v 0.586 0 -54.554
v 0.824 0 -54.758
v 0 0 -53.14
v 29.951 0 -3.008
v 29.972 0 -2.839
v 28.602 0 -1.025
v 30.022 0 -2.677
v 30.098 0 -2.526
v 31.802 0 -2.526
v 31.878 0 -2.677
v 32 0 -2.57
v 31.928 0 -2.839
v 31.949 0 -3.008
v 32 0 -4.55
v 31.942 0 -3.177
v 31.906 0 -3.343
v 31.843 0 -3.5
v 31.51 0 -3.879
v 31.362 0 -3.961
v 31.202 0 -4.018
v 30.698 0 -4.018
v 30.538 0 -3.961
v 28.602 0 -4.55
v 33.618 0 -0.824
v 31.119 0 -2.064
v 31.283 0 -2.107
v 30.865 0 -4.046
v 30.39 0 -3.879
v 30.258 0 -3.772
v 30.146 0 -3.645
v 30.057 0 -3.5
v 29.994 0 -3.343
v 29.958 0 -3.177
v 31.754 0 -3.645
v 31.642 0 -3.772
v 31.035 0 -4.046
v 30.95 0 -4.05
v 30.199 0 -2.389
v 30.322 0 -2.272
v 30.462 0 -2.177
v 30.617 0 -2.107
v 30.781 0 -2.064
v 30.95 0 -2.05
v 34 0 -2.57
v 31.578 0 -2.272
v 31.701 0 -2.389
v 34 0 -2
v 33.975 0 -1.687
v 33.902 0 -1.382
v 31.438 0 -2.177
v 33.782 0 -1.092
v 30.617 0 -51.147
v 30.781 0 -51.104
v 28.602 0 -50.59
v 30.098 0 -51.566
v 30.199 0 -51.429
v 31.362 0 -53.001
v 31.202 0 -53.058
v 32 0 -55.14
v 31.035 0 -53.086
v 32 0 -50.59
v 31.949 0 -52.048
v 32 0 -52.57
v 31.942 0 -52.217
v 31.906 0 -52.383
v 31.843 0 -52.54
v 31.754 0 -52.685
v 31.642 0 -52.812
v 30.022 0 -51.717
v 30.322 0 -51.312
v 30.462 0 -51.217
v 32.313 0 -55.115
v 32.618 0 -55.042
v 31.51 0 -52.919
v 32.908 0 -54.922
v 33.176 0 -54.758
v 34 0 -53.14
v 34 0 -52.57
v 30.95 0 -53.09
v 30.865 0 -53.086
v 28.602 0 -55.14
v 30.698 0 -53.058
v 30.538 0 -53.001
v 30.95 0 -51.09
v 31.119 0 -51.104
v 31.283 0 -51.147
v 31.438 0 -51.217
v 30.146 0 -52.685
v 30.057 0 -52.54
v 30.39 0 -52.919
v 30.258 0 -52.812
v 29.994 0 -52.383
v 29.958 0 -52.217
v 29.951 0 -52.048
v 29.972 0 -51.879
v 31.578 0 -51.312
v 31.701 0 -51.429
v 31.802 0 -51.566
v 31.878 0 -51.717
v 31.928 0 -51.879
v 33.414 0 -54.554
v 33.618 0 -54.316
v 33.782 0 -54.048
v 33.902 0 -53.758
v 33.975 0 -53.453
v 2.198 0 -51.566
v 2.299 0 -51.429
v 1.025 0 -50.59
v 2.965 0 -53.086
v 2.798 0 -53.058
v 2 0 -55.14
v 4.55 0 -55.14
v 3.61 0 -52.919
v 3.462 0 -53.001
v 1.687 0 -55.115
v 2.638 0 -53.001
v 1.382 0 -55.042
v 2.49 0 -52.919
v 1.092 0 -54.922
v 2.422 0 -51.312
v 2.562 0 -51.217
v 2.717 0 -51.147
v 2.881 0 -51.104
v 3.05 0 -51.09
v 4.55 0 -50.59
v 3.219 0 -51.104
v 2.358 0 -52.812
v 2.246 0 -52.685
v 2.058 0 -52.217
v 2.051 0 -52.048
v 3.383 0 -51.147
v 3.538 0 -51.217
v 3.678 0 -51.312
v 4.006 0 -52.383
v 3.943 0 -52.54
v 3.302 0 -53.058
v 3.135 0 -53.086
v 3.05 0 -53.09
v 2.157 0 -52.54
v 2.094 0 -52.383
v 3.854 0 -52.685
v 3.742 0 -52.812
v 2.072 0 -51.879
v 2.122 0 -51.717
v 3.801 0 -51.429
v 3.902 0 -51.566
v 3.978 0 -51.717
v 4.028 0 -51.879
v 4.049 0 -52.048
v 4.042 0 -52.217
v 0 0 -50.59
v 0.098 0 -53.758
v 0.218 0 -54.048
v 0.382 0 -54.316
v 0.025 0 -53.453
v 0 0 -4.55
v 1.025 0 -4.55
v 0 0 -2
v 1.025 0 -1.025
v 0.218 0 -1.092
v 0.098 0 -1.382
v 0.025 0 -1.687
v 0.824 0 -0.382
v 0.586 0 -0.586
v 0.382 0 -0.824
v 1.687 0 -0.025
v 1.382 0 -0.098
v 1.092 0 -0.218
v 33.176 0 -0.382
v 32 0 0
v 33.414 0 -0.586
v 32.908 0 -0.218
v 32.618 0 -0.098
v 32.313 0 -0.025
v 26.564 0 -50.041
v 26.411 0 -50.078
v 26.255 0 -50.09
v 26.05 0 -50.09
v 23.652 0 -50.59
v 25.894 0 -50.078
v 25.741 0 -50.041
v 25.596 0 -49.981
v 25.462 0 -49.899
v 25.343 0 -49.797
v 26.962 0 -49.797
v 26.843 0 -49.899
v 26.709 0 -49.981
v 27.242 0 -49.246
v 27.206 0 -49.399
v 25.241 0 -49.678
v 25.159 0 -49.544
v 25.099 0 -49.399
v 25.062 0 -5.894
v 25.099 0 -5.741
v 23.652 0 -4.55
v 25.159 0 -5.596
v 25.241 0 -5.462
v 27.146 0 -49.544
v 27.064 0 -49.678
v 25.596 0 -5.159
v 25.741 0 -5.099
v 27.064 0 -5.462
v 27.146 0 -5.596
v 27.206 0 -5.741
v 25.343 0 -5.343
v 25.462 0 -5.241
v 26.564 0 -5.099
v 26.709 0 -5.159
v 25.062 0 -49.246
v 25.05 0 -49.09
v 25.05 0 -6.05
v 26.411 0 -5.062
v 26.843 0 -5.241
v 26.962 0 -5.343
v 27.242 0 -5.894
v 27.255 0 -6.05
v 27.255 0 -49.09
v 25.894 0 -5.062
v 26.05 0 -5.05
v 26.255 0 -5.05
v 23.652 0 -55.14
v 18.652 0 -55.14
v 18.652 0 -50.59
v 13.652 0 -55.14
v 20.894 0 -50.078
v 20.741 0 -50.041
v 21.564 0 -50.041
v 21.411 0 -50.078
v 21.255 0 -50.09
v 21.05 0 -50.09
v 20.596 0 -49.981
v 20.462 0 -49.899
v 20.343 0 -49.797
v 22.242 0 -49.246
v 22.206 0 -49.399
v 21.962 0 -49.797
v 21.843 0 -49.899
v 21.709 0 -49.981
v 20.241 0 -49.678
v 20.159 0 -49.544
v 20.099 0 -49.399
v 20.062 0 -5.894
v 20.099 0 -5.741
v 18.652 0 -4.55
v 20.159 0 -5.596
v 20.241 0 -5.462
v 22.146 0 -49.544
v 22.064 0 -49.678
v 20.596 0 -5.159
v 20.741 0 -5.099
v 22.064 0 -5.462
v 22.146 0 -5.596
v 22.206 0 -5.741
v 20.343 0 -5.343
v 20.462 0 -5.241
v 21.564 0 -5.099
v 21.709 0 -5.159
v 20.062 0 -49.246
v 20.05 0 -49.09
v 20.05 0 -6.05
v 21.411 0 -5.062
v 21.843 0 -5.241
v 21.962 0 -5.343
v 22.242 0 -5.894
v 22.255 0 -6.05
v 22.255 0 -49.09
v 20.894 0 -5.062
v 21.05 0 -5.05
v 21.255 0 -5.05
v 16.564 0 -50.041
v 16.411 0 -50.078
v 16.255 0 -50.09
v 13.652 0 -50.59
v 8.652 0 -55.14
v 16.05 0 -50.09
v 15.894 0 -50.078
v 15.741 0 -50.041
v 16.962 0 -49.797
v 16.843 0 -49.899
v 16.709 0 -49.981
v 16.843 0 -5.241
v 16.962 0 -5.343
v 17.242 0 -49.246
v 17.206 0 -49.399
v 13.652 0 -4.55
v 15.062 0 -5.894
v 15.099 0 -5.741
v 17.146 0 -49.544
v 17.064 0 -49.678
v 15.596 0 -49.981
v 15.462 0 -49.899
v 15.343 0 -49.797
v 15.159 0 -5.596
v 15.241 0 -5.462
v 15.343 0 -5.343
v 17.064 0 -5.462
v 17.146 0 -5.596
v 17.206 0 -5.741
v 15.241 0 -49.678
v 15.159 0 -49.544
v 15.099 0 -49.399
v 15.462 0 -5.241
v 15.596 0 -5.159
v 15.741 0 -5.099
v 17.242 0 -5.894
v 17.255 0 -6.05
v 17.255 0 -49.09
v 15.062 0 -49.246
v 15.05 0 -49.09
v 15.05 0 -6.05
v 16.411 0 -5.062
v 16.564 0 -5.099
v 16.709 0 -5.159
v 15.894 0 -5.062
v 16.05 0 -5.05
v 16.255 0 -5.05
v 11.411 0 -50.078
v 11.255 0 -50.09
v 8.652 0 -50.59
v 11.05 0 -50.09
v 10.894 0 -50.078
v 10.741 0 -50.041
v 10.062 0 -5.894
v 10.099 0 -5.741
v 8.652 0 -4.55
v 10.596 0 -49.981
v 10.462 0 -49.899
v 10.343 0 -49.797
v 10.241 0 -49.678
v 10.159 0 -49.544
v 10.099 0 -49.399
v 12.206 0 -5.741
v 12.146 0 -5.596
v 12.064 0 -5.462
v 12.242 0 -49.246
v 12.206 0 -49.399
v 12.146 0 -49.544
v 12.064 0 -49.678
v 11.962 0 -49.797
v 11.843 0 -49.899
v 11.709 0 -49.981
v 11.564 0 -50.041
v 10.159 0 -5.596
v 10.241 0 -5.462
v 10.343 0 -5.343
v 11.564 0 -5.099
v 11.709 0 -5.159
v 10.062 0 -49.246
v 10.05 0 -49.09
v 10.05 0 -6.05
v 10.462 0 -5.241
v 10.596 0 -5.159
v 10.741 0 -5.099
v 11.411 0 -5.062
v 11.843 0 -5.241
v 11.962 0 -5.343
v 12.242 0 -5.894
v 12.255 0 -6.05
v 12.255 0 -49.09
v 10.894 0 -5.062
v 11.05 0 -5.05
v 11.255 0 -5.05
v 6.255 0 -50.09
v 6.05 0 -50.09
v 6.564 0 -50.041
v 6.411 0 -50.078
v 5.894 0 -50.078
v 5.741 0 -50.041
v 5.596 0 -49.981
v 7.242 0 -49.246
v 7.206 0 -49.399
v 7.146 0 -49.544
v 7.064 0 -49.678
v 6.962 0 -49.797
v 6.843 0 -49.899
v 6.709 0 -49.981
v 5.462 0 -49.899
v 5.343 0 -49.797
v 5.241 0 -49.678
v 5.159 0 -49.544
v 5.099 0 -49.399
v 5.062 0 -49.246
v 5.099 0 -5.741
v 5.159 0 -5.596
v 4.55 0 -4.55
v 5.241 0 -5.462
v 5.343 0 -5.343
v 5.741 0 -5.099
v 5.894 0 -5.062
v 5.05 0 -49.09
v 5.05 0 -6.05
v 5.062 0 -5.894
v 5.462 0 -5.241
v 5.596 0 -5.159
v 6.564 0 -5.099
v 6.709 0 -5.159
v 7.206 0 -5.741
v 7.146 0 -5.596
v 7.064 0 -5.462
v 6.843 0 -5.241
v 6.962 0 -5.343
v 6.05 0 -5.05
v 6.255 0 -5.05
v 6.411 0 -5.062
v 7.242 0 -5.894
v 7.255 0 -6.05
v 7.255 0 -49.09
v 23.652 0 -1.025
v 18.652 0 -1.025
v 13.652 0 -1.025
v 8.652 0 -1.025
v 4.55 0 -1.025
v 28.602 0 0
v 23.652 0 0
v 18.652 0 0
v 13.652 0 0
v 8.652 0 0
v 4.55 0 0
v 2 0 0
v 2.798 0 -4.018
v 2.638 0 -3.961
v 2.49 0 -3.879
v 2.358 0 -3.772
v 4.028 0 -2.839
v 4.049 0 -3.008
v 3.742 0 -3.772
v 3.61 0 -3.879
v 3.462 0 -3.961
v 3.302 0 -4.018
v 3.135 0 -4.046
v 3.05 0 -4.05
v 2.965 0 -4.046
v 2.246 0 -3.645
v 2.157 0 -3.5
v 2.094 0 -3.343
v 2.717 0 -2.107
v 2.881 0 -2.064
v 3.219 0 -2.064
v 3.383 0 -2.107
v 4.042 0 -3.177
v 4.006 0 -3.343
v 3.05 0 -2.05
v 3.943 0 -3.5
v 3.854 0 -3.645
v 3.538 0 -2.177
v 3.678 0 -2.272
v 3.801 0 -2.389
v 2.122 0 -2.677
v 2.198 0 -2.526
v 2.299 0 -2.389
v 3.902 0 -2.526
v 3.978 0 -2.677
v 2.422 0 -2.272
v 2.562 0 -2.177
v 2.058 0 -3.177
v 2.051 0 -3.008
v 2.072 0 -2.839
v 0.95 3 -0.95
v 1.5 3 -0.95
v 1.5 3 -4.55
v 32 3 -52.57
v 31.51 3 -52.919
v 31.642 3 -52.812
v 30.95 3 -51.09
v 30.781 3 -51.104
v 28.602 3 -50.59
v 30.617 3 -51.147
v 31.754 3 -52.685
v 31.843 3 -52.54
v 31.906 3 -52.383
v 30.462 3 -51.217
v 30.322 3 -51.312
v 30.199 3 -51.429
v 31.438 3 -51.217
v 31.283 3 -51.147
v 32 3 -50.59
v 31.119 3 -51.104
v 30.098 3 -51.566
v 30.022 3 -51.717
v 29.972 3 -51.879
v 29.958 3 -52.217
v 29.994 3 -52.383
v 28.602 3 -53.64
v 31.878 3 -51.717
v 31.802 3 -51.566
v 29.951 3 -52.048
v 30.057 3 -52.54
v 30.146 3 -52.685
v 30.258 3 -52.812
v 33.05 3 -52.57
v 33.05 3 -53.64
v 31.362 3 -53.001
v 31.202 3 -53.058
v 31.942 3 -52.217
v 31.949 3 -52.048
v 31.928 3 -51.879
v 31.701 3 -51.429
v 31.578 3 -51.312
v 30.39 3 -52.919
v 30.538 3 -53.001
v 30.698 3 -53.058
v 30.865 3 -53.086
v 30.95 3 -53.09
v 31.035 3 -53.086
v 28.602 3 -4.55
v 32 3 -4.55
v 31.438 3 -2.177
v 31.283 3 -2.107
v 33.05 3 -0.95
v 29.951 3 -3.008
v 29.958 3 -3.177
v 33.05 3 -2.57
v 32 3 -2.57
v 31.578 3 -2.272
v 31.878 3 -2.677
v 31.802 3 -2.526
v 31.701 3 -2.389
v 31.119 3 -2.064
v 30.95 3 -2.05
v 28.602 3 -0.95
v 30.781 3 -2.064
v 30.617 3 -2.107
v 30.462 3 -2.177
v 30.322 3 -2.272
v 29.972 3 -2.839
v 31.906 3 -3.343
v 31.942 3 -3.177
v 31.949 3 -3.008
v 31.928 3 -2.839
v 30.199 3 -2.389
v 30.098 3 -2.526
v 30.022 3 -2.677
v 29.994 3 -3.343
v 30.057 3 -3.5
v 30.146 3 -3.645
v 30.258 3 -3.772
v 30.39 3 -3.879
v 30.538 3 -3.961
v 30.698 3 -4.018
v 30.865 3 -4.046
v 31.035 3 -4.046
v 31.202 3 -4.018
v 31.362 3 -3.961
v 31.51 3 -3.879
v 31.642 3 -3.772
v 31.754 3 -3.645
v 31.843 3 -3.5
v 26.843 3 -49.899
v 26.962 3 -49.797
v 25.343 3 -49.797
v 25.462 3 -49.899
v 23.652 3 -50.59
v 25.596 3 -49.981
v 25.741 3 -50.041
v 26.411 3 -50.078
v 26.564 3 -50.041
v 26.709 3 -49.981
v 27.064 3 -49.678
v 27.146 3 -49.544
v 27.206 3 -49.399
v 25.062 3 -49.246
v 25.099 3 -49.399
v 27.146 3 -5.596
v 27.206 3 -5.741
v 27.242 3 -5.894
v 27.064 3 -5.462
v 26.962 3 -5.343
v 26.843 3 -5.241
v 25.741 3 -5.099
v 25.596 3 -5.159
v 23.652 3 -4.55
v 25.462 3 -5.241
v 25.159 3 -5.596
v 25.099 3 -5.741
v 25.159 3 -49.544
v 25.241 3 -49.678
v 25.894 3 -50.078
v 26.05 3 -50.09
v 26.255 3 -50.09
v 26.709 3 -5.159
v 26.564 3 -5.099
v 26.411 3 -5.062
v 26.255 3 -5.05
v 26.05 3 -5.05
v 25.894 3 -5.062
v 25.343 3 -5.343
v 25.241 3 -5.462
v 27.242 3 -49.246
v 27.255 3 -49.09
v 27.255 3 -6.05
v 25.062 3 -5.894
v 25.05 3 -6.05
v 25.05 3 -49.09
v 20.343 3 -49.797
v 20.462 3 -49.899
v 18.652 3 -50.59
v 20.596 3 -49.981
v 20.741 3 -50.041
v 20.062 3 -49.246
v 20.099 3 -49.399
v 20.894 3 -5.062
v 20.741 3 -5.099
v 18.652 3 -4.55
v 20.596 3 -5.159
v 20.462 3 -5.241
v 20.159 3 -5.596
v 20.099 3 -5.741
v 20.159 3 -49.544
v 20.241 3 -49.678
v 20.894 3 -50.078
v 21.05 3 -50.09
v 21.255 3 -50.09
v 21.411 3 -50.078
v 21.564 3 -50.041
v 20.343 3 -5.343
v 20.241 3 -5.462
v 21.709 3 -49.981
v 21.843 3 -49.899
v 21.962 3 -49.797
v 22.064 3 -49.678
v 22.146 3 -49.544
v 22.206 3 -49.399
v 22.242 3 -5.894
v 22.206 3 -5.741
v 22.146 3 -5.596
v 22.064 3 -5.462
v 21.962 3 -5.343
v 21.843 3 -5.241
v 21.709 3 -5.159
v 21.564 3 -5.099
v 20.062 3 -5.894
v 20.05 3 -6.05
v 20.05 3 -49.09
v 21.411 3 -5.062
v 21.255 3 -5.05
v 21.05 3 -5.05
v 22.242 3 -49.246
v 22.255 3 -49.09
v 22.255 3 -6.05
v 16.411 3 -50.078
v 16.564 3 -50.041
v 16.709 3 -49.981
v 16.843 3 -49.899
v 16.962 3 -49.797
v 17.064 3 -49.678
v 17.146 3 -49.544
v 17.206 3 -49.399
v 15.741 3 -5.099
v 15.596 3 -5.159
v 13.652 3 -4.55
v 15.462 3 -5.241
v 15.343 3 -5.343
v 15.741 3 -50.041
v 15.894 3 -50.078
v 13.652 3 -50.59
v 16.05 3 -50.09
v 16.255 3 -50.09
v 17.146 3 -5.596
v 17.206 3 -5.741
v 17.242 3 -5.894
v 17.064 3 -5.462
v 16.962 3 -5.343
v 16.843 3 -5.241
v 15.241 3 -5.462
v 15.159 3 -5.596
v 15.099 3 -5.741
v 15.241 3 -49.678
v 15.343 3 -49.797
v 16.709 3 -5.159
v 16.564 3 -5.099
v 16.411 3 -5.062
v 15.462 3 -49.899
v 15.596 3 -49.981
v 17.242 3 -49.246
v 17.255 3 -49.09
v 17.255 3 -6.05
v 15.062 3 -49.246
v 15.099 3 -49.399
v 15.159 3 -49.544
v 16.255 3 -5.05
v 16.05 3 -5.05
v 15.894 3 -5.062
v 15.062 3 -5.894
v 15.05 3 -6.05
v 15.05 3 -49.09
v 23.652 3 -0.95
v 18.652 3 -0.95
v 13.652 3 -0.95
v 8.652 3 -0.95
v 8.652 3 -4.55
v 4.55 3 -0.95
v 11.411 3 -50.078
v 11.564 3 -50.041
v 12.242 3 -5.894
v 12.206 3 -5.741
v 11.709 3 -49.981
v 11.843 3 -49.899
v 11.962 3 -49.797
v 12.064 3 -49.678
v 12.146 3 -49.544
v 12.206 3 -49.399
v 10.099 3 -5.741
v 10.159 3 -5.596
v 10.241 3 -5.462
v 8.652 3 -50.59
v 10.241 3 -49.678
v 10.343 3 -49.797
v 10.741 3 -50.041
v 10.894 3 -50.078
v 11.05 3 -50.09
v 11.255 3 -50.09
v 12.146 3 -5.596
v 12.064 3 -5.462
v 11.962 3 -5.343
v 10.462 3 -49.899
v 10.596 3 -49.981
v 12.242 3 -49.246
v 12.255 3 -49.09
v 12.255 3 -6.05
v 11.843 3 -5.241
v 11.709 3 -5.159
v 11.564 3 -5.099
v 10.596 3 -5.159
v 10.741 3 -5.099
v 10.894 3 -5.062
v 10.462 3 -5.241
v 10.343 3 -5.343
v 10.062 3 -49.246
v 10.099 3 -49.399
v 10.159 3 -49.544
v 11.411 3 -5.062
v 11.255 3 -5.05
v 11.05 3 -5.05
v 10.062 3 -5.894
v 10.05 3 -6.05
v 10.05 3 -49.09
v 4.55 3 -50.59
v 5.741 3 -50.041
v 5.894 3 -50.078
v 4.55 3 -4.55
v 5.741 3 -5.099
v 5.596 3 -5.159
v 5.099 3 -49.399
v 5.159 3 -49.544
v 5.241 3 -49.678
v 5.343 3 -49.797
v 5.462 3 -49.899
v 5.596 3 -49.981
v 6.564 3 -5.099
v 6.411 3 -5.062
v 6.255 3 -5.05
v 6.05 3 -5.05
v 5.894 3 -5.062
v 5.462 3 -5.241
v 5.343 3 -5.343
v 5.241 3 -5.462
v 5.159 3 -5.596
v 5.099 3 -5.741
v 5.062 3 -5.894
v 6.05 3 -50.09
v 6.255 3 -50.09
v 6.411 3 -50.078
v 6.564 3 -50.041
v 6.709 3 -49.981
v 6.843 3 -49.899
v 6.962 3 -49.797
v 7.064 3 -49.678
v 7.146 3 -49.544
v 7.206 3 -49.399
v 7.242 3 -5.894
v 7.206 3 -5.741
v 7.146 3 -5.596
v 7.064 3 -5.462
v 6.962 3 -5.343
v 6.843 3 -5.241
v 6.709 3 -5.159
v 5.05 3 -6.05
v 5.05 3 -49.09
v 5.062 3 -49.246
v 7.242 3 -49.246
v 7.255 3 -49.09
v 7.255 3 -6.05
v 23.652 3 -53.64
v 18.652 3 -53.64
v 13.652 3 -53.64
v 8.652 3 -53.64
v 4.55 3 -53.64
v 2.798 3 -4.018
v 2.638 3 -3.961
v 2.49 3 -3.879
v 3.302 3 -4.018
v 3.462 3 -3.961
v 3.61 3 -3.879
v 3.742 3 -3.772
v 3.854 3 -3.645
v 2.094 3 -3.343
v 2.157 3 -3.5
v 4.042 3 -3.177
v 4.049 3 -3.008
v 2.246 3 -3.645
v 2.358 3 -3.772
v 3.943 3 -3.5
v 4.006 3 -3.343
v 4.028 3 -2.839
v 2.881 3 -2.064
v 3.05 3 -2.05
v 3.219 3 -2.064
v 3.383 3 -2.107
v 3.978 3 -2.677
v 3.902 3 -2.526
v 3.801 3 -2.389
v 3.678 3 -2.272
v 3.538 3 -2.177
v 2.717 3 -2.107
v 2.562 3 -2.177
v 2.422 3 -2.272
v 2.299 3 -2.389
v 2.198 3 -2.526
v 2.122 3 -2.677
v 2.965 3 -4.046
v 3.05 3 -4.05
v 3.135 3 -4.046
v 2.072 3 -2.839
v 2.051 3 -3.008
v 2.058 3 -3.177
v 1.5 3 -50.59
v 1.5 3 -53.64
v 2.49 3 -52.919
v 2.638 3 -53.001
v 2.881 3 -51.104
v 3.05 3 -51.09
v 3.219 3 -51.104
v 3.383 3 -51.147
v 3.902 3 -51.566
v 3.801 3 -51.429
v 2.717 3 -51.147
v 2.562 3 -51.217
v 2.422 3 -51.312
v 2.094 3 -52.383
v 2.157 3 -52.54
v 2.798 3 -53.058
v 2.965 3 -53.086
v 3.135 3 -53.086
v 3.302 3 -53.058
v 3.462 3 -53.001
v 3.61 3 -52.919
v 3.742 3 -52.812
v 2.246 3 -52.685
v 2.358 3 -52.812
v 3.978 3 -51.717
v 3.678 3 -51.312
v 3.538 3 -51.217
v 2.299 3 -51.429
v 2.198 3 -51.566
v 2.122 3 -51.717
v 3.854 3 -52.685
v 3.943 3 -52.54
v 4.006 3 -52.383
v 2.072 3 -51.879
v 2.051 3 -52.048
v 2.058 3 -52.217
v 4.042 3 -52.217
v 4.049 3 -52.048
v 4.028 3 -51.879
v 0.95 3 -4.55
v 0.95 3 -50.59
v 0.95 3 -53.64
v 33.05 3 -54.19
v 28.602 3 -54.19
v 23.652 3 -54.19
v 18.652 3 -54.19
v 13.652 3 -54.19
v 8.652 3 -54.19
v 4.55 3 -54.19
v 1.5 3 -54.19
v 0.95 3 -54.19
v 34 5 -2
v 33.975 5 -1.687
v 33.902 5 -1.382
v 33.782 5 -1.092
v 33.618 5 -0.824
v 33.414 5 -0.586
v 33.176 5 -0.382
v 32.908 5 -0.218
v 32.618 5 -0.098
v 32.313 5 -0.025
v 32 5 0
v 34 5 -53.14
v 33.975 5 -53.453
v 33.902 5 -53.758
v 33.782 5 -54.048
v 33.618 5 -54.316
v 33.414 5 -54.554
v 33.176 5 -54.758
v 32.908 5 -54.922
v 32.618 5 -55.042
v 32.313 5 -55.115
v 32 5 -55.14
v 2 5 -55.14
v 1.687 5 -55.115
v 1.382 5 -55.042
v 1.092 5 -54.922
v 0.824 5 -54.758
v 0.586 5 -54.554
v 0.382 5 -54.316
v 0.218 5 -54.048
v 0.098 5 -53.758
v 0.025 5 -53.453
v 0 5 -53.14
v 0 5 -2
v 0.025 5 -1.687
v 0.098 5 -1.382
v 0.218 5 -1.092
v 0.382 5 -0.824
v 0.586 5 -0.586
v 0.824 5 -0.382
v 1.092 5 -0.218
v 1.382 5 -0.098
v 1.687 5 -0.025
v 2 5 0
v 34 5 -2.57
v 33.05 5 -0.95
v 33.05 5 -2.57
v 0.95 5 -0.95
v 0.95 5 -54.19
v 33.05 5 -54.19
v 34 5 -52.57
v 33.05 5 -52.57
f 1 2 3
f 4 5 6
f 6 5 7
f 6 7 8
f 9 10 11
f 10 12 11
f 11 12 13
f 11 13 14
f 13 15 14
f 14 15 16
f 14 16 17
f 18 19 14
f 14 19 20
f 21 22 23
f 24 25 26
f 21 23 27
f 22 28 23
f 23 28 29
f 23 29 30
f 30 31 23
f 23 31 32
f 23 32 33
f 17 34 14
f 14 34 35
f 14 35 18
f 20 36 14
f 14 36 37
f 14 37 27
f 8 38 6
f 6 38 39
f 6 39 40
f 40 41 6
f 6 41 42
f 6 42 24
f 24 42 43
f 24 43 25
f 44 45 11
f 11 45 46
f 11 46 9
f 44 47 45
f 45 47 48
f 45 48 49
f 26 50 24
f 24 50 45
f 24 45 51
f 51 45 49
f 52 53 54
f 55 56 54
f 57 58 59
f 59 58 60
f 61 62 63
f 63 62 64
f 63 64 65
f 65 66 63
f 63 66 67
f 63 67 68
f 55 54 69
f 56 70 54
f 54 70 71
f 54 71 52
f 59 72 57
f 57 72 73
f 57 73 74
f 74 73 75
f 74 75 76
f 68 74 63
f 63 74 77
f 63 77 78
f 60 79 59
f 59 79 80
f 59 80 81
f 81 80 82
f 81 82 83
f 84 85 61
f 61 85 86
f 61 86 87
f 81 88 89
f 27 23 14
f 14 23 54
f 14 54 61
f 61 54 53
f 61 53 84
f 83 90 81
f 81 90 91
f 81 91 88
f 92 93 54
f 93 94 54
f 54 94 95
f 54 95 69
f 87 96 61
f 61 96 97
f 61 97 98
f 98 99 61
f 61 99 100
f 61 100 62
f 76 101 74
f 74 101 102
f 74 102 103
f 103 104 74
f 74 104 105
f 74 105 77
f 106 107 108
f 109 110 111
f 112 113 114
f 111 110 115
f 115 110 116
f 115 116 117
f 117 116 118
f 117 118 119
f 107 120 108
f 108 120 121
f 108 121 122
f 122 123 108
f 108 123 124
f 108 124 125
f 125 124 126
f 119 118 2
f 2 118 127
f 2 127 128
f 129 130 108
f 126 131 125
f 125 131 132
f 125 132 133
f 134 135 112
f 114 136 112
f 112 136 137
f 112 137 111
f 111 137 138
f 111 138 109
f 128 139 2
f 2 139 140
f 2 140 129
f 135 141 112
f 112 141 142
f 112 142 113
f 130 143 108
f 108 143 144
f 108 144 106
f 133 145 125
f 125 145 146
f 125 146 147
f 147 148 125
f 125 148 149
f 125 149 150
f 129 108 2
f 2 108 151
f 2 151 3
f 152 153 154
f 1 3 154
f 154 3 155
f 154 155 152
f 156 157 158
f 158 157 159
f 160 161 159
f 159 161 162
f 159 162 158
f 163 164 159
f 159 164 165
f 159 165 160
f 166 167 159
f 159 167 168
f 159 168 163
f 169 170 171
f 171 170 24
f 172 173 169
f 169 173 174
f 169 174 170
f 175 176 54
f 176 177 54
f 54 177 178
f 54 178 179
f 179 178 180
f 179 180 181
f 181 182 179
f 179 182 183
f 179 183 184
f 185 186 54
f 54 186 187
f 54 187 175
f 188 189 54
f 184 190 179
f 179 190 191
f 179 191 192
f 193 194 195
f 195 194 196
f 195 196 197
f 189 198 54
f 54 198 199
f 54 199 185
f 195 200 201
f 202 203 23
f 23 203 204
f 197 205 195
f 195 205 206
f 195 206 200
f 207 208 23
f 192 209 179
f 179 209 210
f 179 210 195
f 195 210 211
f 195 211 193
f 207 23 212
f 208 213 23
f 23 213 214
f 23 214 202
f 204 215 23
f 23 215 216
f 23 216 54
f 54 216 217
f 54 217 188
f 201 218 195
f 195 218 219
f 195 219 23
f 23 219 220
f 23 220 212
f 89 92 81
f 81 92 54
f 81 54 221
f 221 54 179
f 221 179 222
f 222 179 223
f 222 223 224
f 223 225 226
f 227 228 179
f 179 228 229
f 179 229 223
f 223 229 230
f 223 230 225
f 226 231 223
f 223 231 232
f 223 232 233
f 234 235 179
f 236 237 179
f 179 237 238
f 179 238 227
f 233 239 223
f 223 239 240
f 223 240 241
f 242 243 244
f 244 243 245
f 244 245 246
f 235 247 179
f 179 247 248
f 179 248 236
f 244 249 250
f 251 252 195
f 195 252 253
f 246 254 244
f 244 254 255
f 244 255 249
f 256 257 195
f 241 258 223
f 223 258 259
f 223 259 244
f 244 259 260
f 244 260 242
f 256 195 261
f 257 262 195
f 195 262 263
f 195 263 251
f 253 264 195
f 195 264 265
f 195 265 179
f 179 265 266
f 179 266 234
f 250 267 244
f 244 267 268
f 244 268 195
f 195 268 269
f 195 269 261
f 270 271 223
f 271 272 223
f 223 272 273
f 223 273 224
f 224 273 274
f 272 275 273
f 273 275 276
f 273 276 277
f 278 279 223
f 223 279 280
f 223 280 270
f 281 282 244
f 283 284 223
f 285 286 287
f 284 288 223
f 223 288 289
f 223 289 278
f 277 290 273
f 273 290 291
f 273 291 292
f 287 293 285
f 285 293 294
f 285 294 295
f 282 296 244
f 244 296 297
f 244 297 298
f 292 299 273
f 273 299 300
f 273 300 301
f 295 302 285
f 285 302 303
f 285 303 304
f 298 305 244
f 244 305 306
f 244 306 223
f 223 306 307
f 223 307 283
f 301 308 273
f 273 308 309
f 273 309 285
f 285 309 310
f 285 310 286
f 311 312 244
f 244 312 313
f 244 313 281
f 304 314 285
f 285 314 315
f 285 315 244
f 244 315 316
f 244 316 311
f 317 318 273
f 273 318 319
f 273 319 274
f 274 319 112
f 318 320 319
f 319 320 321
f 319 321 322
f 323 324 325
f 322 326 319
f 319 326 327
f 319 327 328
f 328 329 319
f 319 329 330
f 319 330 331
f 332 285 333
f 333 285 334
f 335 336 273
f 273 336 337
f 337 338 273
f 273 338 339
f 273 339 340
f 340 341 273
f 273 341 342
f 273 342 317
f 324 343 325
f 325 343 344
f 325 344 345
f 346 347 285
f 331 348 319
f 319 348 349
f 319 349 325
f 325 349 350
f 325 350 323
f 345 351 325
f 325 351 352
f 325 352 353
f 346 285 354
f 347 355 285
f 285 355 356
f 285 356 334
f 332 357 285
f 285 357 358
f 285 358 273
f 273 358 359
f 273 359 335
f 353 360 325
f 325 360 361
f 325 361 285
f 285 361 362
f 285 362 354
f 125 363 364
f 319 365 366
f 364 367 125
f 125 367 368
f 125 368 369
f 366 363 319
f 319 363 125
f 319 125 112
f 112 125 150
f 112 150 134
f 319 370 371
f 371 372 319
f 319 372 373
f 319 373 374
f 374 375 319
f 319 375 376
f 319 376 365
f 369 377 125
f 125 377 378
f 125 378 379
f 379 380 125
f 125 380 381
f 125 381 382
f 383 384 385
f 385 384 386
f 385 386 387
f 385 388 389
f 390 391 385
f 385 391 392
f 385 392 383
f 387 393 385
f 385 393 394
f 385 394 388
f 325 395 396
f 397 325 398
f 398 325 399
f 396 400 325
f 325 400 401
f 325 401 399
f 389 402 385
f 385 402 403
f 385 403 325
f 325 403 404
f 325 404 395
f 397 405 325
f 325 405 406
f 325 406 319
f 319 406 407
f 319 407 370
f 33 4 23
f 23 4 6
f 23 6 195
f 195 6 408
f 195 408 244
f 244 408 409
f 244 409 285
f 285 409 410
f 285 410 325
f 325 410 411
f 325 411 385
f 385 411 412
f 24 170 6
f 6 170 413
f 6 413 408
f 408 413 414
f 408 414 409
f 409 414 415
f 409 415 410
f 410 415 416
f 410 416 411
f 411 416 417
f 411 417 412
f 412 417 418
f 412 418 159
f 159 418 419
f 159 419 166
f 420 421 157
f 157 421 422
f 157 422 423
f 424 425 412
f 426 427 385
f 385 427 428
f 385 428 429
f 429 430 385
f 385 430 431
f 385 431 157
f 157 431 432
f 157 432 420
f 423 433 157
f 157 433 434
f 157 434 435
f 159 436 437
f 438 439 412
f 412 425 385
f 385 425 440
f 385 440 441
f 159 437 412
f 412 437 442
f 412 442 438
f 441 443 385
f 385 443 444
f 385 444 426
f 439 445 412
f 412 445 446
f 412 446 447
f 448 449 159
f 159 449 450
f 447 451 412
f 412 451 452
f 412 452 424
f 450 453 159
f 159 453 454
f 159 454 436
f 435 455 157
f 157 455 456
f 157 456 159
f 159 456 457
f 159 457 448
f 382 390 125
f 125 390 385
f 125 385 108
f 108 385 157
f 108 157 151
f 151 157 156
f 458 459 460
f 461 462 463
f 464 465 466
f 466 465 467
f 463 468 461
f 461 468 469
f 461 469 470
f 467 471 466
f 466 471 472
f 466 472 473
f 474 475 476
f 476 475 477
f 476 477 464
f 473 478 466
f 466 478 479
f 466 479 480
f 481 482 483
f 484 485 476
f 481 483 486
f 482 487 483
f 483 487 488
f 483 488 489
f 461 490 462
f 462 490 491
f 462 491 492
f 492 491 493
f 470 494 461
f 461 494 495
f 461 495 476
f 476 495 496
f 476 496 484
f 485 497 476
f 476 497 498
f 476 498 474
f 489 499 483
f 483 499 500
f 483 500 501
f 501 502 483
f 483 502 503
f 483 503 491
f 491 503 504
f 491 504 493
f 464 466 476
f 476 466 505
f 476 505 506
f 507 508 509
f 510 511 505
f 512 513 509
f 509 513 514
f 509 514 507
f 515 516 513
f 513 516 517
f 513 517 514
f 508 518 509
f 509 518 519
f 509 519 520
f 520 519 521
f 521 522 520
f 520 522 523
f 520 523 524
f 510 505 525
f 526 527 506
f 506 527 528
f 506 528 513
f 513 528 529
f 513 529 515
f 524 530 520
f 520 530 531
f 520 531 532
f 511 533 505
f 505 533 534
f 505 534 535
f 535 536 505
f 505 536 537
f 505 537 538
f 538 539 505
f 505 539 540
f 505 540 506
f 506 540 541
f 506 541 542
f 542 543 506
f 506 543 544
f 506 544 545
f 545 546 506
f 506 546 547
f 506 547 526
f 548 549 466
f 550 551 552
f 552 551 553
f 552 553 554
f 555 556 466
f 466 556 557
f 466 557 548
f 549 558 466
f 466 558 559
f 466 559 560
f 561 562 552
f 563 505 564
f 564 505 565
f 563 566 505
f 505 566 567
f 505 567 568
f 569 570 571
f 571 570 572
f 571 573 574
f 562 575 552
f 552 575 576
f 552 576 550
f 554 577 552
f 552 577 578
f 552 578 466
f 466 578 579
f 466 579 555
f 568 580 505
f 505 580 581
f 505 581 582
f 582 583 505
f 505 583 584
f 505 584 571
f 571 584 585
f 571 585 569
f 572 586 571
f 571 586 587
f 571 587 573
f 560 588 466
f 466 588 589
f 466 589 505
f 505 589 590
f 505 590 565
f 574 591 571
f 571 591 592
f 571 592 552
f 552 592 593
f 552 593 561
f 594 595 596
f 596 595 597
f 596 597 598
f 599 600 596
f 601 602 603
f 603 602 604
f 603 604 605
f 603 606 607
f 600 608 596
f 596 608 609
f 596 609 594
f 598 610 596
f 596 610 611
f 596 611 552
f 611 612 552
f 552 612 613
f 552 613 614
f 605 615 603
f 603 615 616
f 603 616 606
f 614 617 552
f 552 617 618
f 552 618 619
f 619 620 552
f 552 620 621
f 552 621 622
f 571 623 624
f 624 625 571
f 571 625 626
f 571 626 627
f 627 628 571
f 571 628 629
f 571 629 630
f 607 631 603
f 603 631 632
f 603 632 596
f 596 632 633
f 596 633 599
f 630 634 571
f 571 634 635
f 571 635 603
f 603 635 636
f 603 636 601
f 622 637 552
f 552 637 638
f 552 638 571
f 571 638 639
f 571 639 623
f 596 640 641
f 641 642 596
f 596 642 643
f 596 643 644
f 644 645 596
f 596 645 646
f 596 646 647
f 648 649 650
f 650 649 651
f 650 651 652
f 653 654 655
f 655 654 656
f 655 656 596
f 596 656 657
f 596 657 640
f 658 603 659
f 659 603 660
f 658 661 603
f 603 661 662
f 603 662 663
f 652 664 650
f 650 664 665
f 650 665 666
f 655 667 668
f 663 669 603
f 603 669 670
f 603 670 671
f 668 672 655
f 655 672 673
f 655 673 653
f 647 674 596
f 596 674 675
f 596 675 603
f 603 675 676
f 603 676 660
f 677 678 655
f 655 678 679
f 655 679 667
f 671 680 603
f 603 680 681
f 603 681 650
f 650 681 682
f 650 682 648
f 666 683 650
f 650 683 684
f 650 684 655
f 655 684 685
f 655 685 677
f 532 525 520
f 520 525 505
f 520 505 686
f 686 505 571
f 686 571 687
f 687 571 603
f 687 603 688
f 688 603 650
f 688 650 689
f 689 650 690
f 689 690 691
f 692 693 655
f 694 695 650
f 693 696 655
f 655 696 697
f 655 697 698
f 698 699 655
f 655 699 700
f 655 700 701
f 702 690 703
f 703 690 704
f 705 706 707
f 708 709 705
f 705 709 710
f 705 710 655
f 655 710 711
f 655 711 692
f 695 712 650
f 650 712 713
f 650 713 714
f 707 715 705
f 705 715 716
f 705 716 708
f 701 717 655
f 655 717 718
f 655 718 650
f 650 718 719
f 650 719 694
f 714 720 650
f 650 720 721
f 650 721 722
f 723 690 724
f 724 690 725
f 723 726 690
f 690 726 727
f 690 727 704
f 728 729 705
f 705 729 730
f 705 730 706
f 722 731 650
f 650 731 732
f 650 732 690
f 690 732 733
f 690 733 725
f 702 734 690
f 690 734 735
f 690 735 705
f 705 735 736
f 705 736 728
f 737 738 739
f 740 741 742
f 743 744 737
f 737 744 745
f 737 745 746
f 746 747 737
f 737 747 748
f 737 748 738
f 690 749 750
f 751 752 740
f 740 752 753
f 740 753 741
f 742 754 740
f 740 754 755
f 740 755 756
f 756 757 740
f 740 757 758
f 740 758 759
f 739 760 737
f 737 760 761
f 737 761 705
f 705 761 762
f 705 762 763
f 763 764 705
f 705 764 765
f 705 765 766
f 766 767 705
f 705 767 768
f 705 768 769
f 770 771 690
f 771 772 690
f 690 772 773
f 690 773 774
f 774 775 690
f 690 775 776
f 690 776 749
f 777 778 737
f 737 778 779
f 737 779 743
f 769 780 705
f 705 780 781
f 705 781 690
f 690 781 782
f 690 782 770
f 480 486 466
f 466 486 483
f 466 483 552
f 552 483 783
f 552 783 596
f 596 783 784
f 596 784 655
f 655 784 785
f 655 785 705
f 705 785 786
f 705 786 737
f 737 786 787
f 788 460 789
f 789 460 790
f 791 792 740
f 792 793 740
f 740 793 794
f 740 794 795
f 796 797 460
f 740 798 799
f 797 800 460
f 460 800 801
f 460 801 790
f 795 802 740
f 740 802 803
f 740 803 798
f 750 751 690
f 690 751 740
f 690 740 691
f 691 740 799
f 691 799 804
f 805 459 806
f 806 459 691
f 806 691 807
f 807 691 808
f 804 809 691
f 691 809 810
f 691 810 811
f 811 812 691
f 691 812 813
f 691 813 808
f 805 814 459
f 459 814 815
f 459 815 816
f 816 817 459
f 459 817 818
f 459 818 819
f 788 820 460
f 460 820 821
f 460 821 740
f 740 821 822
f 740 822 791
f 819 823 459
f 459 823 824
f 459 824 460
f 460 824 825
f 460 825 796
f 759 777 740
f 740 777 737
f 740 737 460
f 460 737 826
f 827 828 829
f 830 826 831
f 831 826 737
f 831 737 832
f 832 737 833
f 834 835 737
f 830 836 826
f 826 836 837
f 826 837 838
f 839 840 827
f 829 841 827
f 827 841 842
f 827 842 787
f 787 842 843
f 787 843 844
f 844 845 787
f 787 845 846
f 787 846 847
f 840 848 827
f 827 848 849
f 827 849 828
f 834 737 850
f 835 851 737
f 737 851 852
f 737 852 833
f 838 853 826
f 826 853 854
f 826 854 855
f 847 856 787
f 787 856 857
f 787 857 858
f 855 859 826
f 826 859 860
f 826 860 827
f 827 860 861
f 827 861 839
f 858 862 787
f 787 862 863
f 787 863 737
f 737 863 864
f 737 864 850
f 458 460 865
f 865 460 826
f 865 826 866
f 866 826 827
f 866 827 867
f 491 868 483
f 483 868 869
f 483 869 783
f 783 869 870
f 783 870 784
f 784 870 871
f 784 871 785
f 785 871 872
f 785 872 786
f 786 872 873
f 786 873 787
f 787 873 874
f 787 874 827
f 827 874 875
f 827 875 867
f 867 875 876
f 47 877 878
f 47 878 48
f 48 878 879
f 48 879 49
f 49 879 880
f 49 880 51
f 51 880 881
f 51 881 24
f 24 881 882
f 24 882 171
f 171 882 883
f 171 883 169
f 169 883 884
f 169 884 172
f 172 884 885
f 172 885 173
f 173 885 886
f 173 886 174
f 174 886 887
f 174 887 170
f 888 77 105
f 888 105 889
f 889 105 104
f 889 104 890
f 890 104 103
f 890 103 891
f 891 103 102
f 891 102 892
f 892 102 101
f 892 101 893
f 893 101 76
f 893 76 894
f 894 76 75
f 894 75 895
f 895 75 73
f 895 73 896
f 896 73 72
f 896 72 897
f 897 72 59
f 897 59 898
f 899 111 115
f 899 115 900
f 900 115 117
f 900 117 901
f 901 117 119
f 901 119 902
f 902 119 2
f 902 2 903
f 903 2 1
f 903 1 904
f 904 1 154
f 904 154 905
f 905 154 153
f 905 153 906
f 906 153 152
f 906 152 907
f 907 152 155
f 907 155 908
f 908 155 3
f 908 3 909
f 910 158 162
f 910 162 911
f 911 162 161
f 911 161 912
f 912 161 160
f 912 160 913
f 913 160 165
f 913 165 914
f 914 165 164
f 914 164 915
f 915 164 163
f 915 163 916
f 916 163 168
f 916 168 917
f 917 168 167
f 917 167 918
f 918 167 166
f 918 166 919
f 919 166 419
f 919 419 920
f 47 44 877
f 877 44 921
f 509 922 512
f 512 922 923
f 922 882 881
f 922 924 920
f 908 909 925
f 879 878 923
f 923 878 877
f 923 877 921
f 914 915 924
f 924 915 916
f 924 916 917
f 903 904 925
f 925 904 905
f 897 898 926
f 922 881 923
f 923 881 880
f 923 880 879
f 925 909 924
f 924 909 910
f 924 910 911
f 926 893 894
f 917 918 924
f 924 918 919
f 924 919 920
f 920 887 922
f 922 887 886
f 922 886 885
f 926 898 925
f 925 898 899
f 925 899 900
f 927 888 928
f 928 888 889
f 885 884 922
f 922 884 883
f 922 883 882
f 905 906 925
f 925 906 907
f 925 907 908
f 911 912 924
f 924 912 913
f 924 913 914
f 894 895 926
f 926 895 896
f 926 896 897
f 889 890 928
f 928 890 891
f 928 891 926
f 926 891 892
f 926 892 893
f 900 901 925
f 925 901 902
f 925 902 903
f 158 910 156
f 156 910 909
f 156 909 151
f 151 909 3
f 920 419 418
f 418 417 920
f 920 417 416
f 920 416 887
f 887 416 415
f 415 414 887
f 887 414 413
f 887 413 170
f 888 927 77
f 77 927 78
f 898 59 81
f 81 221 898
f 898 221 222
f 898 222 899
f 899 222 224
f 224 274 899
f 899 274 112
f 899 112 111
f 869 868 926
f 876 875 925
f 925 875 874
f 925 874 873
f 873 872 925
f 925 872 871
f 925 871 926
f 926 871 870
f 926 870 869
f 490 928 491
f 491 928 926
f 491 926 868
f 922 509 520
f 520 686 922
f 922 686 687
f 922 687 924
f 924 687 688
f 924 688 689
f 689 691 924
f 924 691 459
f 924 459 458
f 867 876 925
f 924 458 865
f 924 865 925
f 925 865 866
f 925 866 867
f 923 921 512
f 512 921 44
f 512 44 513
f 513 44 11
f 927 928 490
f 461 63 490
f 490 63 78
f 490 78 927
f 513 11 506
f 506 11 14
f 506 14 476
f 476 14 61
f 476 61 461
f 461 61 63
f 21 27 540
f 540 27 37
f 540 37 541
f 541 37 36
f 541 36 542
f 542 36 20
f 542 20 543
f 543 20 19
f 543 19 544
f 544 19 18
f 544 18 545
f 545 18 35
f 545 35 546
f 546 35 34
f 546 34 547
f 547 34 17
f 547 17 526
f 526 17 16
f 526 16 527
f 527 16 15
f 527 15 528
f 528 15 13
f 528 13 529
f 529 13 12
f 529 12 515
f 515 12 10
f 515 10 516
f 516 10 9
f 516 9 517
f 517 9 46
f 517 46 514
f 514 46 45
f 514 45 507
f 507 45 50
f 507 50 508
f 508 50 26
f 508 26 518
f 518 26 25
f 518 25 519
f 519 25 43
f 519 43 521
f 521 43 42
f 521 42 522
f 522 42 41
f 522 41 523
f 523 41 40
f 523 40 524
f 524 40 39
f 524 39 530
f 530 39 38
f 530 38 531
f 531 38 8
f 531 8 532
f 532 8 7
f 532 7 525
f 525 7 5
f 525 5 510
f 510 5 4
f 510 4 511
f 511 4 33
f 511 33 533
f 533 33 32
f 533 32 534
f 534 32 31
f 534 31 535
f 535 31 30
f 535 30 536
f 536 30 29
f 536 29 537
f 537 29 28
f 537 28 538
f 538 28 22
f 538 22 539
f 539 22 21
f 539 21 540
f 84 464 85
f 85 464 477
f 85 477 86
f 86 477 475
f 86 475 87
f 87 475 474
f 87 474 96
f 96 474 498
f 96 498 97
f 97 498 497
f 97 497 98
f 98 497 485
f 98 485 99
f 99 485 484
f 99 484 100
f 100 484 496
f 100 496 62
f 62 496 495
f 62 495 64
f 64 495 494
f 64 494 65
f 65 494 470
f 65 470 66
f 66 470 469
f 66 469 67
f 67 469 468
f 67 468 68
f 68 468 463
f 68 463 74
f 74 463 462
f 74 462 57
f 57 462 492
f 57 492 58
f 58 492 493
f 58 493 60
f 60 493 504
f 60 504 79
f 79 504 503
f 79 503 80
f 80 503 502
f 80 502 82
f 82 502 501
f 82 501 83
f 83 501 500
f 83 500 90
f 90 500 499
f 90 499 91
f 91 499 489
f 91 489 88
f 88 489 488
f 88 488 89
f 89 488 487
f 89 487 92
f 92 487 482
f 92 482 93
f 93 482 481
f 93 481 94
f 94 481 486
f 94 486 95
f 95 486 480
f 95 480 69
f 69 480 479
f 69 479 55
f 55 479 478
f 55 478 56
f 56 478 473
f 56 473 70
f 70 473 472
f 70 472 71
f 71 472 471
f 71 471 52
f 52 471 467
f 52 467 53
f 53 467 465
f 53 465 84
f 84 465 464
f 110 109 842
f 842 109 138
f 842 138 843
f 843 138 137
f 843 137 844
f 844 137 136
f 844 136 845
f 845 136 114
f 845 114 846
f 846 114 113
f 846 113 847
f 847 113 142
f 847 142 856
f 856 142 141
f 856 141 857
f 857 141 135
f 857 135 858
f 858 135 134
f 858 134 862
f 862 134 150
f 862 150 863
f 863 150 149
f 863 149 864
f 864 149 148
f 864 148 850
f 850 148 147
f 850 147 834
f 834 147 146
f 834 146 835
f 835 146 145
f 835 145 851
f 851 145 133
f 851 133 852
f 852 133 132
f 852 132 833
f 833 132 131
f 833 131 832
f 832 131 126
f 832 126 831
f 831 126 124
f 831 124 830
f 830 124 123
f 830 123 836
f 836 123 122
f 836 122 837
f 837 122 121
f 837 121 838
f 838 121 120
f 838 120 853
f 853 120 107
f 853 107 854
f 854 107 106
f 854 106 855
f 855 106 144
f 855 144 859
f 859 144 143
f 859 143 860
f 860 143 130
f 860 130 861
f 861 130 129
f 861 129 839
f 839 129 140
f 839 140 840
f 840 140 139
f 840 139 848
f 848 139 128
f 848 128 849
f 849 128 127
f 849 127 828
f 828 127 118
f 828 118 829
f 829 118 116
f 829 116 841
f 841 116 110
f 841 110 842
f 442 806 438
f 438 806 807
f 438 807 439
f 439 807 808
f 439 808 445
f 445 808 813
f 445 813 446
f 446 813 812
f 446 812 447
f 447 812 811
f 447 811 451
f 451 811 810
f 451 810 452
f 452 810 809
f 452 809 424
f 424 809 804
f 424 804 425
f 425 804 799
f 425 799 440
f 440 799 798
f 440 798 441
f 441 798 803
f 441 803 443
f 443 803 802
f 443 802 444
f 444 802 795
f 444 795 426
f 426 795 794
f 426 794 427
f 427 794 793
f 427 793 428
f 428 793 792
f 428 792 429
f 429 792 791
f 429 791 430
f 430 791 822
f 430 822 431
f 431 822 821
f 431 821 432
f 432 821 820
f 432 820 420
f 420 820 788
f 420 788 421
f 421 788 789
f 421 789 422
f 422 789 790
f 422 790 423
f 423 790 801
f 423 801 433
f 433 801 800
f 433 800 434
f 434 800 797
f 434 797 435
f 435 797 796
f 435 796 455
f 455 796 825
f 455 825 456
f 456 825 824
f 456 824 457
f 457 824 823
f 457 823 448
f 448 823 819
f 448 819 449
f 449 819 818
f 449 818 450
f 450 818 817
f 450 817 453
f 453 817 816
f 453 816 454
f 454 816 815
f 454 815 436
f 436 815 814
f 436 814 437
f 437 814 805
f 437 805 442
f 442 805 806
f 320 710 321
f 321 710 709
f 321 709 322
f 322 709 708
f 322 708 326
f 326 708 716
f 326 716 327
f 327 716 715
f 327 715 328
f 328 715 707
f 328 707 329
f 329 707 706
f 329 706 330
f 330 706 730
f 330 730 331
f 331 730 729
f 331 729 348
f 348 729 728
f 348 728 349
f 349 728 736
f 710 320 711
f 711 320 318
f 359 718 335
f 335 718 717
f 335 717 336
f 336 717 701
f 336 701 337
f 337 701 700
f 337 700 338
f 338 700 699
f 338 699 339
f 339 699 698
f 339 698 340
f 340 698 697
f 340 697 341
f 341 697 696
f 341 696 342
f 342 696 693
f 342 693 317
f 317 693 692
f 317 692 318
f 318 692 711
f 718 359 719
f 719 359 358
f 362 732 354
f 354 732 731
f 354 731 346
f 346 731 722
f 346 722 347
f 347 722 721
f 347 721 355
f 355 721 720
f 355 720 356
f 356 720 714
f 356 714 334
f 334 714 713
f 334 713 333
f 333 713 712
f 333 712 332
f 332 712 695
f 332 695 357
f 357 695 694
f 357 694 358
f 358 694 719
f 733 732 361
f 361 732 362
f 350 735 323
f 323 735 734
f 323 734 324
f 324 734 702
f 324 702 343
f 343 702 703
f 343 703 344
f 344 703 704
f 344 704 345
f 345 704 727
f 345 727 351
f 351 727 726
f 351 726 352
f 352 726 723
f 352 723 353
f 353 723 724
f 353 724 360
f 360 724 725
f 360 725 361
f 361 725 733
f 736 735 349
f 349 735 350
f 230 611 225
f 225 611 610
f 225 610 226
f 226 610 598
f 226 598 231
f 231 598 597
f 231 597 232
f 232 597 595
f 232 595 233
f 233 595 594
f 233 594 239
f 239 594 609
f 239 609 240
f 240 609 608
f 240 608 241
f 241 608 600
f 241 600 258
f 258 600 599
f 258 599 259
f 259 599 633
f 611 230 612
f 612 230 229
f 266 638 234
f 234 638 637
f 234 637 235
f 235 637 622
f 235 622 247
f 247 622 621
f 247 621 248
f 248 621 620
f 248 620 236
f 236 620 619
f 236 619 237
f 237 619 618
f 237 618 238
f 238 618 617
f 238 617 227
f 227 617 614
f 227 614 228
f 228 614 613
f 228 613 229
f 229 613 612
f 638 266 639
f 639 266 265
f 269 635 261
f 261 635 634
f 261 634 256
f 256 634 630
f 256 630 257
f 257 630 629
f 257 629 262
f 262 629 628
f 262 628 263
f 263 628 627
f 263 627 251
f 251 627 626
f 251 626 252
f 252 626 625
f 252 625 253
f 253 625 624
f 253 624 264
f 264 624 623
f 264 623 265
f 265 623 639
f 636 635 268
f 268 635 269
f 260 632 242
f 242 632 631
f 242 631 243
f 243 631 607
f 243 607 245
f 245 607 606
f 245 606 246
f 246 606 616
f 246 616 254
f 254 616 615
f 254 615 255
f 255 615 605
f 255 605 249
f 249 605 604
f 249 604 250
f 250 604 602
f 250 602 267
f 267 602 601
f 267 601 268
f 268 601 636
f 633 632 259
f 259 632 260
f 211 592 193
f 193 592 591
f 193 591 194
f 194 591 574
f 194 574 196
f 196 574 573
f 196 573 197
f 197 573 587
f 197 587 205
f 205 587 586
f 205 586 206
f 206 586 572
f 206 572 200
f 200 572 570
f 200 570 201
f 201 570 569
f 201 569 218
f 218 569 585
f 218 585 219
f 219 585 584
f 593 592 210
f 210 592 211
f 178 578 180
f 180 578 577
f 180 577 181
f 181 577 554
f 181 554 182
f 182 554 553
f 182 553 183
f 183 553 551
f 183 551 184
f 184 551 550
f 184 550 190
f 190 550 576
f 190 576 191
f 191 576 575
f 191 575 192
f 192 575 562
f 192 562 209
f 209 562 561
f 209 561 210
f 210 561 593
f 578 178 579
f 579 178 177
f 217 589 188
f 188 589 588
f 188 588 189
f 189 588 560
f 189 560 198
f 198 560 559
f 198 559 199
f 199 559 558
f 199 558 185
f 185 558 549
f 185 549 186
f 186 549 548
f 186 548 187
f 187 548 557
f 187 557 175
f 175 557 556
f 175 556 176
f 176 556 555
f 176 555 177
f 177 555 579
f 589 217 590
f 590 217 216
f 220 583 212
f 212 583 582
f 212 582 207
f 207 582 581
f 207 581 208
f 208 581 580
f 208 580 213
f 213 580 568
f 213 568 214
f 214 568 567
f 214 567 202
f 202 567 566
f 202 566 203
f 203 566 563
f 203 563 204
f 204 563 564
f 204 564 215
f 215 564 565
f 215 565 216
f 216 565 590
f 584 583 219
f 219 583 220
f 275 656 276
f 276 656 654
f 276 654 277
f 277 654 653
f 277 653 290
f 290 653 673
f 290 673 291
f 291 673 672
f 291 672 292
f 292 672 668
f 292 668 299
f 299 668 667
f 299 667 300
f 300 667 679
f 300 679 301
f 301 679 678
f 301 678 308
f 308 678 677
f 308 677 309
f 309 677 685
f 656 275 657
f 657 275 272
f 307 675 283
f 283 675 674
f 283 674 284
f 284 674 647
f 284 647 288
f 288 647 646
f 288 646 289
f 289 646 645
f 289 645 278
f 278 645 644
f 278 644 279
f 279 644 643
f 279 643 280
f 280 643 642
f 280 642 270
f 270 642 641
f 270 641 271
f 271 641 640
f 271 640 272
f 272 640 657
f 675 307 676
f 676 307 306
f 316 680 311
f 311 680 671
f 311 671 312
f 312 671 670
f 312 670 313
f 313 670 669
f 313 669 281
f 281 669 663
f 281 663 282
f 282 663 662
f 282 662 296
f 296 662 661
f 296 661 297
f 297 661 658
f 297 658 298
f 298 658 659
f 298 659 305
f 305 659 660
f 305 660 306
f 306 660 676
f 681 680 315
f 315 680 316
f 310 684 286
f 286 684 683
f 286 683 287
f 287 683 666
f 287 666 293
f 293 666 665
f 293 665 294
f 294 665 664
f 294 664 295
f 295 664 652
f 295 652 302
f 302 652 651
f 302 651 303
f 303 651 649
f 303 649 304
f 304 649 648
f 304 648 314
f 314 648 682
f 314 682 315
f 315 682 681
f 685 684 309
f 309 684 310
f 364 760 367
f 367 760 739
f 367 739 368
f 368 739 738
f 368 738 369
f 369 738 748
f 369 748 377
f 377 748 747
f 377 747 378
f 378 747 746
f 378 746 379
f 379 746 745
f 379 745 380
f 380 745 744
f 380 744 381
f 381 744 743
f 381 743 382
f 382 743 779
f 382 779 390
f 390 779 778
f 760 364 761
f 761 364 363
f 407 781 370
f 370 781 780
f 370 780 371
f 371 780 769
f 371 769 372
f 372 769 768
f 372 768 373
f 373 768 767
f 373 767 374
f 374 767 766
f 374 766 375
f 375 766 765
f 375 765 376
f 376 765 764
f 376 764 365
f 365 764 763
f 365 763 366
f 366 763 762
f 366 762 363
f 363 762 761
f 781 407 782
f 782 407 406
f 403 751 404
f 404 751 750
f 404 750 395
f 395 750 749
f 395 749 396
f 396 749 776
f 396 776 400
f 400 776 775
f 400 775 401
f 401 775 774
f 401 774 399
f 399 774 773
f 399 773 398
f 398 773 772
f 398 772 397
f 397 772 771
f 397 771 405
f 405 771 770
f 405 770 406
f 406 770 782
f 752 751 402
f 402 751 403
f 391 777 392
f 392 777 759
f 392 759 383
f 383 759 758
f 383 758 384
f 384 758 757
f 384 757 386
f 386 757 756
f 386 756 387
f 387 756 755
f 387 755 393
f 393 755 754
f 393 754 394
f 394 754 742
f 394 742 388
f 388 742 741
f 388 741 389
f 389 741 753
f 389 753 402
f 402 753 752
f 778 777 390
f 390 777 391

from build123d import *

# Parameters (mm, degrees)
SKETCH_1_W          = 34
SKETCH_1_H          = 55.14
EXTRUDE_1_DEPTH     = 5
SKETCH_2_W          = 32.1
SKETCH_2_H          = 53.24
CUT_EXTRUDE_1_DEPTH = 2
SKETCH_3_W          = 50
SKETCH_3_H          = 10
CUT_EXTRUDE_2_DEPTH = 2
FILLET_3_R          = 2
FILLET_4_R          = 2
FILLET_5_R          = 2
FILLET_6_R          = 2
SKETCH_5_R          = 1
CUT_EXTRUDE_3_DEPTH = 5
CUT_EXTRUDE_5_DEPTH = 5


with BuildPart() as part:
    # 草图1 → 凸台-拉伸1 (new body)
    with BuildSketch(Plane(origin=(0, 0, 0), x_dir=(1, 0, 0), z_dir=(0, 1, 0))):
        with Locations((17, 27.57)):
            Rectangle(SKETCH_1_W, SKETCH_1_H)
    extrude(amount=EXTRUDE_1_DEPTH)

    # 草图2 → 切除-拉伸1 (cut)
    with BuildSketch(Plane(origin=(0, 5, 0), x_dir=(1, 0, 0), z_dir=(0, 1, 0))):
        with Locations((17, 27.57)):
            Rectangle(SKETCH_2_W, SKETCH_2_H)
    extrude(amount=-CUT_EXTRUDE_1_DEPTH, mode=Mode.SUBTRACT)

    # 草图3 → 切除-拉伸2 (cut)
    with BuildSketch(Plane(origin=(34, 0, 0), x_dir=(0, 0, -1), z_dir=(1, 0, 0))):
        with Locations((27.57, 5)):
            Rectangle(SKETCH_3_W, SKETCH_3_H)
    extrude(amount=-CUT_EXTRUDE_2_DEPTH, mode=Mode.SUBTRACT)

    # 圆角3
    fillet_3_edges = [part.edges().sort_by_distance(p)[0] for p in [
        (0, 2.5, 0),
    ]]
    fillet(fillet_3_edges, radius=FILLET_3_R)

    # 圆角4
    fillet_4_edges = [part.edges().sort_by_distance(p)[0] for p in [
        (0, 2.5, -55.14),
    ]]
    fillet(fillet_4_edges, radius=FILLET_4_R)

    # 圆角5
    fillet_5_edges = [part.edges().sort_by_distance(p)[0] for p in [
        (34, 2.5, -55.14),
    ]]
    fillet(fillet_5_edges, radius=FILLET_5_R)

    # 圆角6
    fillet_6_edges = [part.edges().sort_by_distance(p)[0] for p in [
        (34, 2.5, 0),
    ]]
    fillet(fillet_6_edges, radius=FILLET_6_R)

    # 草图5 → 切除-拉伸3 (cut)
    with BuildSketch(Plane(origin=(0, 3, 0), x_dir=(1, 0, 0), z_dir=(0, 1, 0))):
        with Locations(Location((3.05, 52.09, 0), (0, 0, 270))):
            Circle(SKETCH_5_R)
        with Locations(Location((3.05, 3.05, 0), (0, 0, 90))):
            Circle(SKETCH_5_R)
        with Locations(Location((30.95, 3.05, 0), (0, 0, 270))):
            Circle(SKETCH_5_R)
        with Locations(Location((30.95, 52.09, 0), (0, 0, 90))):
            Circle(SKETCH_5_R)
    extrude(amount=-CUT_EXTRUDE_3_DEPTH, mode=Mode.SUBTRACT)

    # 草图6 → 切除-拉伸5 (cut)
    with BuildSketch(Plane(origin=(0, 3, 0), x_dir=(1, 0, 0), z_dir=(0, 1, 0))):
        with BuildLine():
            ThreePointArc((5.05, 49.09), (5.342893219, 49.797106781), (6.05, 50.09))
            Line((6.05, 50.09), (6.254717451, 50.09))
            ThreePointArc((6.254717451, 50.09), (6.961824232, 49.797106781), (7.254717451, 49.09))
            Line((7.254717451, 49.09), (7.254717451, 6.05))
            ThreePointArc((7.254717451, 6.05), (6.961824232, 5.342893219), (6.254717451, 5.05))
            Line((6.254717451, 5.05), (6.05, 5.05))
            ThreePointArc((6.05, 5.05), (5.342893219, 5.342893219), (5.05, 6.05))
            Line((5.05, 6.05), (5.05, 49.09))
        make_face()
        with BuildLine():
            ThreePointArc((10.05, 49.09), (10.342893219, 49.797106781), (11.05, 50.09))
            Line((11.05, 50.09), (11.254717451, 50.09))
            ThreePointArc((11.254717451, 50.09), (11.961824232, 49.797106781), (12.254717451, 49.09))
            Line((12.254717451, 49.09), (12.254717451, 6.05))
            ThreePointArc((12.254717451, 6.05), (11.961824232, 5.342893219), (11.254717451, 5.05))
            Line((11.254717451, 5.05), (11.05, 5.05))
            ThreePointArc((11.05, 5.05), (10.342893219, 5.342893219), (10.05, 6.05))
            Line((10.05, 6.05), (10.05, 49.09))
        make_face()
        with BuildLine():
            ThreePointArc((20.05, 49.09), (20.342893219, 49.797106781), (21.05, 50.09))
            Line((21.05, 50.09), (21.254717451, 50.09))
            ThreePointArc((21.254717451, 50.09), (21.961824232, 49.797106781), (22.254717451, 49.09))
            Line((22.254717451, 49.09), (22.254717451, 6.05))
            ThreePointArc((22.254717451, 6.05), (21.961824232, 5.342893219), (21.254717451, 5.05))
            Line((21.254717451, 5.05), (21.05, 5.05))
            ThreePointArc((21.05, 5.05), (20.342893219, 5.342893219), (20.05, 6.05))
            Line((20.05, 6.05), (20.05, 49.09))
        make_face()
        with BuildLine():
            ThreePointArc((26.05, 5.05), (25.342893219, 5.342893219), (25.05, 6.05))
            Line((25.05, 6.05), (25.05, 49.09))
            ThreePointArc((25.05, 49.09), (25.342893219, 49.797106781), (26.05, 50.09))
            Line((26.05, 50.09), (26.254717451, 50.09))
            ThreePointArc((26.254717451, 50.09), (26.961824232, 49.797106781), (27.254717451, 49.09))
            Line((27.254717451, 49.09), (27.254717451, 6.05))
            ThreePointArc((27.254717451, 6.05), (26.961824232, 5.342893219), (26.254717451, 5.05))
            Line((26.254717451, 5.05), (26.05, 5.05))
        make_face()
        with BuildLine():
            Line((15.05, 49.09), (15.05, 6.05))
            ThreePointArc((15.05, 6.05), (15.342893219, 5.342893219), (16.05, 5.05))
            Line((16.05, 5.05), (16.254717451, 5.05))
            ThreePointArc((16.254717451, 5.05), (16.961824232, 5.342893219), (17.254717451, 6.05))
            Line((17.254717451, 6.05), (17.254717451, 49.09))
            ThreePointArc((17.254717451, 49.09), (16.961824232, 49.797106781), (16.254717451, 50.09))
            Line((16.254717451, 50.09), (16.05, 50.09))
            ThreePointArc((16.05, 50.09), (15.342893219, 49.797106781), (15.05, 49.09))
        make_face()
    extrude(amount=-CUT_EXTRUDE_5_DEPTH, mode=Mode.SUBTRACT)


solid = part.part
